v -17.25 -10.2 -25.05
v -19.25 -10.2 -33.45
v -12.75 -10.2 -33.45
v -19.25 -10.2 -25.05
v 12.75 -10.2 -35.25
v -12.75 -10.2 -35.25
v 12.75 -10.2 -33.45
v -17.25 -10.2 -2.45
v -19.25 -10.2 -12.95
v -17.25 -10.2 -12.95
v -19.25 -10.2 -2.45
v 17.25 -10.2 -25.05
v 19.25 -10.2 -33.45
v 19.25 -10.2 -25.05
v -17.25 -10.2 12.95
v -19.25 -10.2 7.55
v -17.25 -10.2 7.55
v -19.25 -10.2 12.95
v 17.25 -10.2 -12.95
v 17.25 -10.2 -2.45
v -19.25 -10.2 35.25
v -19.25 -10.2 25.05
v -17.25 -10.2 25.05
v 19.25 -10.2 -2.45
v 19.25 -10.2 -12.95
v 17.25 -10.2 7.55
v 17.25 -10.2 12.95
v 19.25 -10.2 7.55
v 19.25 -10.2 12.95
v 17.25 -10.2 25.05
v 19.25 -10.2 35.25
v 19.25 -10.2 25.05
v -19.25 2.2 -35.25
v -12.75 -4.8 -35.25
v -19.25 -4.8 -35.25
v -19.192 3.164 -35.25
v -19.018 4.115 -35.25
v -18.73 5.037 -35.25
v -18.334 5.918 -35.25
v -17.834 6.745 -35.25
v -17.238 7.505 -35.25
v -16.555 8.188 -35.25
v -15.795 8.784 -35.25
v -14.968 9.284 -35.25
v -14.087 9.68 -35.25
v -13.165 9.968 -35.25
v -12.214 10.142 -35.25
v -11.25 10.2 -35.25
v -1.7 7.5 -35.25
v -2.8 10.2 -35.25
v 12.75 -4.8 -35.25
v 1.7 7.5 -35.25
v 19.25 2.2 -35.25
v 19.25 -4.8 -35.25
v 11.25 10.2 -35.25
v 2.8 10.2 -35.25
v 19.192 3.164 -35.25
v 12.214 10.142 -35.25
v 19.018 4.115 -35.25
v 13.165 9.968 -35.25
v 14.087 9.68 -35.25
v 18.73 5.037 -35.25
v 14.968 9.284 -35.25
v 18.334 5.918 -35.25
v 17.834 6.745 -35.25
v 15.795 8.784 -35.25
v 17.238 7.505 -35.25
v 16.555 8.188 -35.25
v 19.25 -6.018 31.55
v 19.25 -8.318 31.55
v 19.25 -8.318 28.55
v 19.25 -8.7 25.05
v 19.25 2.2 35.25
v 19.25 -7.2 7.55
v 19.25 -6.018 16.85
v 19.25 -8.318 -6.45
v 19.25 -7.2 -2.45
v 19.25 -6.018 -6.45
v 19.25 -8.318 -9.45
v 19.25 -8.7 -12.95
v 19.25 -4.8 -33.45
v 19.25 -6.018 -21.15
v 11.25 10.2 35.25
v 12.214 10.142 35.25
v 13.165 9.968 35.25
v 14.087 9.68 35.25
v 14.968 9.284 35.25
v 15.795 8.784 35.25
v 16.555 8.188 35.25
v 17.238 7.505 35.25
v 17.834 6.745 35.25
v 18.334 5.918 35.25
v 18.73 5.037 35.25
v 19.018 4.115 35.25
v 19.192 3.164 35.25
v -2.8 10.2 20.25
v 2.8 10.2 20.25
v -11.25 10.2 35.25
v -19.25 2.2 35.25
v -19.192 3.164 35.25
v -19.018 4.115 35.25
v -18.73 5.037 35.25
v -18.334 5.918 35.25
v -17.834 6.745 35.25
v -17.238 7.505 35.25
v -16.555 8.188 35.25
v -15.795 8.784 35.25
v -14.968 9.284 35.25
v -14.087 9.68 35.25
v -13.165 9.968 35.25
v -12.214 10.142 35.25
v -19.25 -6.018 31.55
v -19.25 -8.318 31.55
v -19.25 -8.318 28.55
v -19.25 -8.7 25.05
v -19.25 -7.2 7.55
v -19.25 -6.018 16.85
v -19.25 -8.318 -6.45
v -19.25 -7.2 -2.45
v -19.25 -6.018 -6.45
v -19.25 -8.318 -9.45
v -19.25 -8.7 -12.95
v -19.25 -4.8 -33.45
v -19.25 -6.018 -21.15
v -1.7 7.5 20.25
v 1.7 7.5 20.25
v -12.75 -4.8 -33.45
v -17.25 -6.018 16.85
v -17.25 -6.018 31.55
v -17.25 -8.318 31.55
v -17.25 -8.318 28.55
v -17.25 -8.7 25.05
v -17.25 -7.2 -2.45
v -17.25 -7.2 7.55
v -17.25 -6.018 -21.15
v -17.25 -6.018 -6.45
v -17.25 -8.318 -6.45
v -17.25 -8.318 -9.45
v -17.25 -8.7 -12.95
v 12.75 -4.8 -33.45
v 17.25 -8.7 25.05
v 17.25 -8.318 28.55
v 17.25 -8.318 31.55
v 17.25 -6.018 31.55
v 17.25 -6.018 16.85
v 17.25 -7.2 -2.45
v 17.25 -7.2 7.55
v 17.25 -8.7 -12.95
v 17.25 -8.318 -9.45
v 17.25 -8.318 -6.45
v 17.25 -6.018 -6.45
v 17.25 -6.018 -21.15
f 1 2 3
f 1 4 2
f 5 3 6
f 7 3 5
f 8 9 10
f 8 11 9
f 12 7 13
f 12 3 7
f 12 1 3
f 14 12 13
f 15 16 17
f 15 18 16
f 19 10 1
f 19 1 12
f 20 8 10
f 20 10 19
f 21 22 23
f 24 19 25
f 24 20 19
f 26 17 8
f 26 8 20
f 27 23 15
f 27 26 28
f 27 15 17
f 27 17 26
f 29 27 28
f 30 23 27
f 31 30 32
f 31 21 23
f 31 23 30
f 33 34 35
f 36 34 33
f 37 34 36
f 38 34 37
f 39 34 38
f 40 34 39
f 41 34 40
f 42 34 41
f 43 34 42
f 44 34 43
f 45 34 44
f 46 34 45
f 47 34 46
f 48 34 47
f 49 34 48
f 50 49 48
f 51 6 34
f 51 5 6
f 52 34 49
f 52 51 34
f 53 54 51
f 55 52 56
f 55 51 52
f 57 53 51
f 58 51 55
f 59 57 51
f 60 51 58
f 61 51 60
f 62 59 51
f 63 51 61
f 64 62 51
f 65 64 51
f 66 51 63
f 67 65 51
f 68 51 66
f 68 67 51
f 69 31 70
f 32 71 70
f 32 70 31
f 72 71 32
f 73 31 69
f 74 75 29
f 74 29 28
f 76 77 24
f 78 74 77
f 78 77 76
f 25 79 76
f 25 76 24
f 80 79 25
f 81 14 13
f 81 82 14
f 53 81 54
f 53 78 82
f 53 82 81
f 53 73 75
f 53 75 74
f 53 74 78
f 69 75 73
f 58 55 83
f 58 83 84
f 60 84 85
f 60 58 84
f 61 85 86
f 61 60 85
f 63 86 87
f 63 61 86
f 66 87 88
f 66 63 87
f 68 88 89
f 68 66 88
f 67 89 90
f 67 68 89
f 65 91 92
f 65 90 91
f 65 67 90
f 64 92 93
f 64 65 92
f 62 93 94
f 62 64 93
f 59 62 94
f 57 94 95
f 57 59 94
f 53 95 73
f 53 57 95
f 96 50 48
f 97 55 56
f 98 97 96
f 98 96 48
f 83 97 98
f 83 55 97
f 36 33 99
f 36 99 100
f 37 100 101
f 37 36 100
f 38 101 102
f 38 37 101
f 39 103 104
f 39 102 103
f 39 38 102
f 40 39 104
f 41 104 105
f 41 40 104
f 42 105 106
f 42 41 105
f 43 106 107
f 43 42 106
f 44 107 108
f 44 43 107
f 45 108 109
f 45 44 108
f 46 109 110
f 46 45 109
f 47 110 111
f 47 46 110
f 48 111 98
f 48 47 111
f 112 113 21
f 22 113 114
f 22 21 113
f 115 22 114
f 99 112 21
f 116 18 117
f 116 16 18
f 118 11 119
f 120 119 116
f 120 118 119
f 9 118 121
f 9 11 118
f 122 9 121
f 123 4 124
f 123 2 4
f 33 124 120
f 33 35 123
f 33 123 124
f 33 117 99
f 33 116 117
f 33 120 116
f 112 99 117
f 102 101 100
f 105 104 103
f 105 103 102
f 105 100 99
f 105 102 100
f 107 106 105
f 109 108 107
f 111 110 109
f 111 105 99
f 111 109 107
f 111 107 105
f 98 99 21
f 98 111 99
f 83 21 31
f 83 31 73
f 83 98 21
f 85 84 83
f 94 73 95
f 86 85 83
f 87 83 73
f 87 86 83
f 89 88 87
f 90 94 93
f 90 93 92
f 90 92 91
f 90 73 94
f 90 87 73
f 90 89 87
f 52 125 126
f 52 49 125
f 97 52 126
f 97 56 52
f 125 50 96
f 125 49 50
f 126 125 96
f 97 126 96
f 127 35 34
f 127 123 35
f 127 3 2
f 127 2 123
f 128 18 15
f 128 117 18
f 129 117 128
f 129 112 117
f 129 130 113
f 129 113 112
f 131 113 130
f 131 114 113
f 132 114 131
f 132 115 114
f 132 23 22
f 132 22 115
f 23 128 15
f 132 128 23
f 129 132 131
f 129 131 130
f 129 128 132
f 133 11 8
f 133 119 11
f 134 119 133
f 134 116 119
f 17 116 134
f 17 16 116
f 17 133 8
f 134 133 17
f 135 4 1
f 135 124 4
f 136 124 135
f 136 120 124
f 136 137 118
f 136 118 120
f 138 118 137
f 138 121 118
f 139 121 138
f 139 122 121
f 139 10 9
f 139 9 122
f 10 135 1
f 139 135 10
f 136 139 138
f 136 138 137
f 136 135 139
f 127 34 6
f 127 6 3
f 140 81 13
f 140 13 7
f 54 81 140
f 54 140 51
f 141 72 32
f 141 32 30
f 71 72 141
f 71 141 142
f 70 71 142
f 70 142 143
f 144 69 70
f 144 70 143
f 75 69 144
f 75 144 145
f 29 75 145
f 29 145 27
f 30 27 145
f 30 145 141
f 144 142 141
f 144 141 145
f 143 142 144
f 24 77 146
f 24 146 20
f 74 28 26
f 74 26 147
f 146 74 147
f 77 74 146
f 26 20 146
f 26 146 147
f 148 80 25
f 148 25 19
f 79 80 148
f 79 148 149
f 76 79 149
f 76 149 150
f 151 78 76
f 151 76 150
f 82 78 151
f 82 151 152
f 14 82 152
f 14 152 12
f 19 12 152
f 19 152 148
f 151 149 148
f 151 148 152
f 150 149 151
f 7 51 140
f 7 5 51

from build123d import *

# Parameters (mm, degrees)
SKETCH_1_R          = 8
SKETCH_1_W          = 38.5
SKETCH_1_H          = 12.4
SKETCH_1_W_2        = 22.5
SKETCH_1_H_2        = 8
EXTRUDE_1_DEPTH     = 35.25
CUT_EXTRUDE_1_DEPTH = 55.5
SKETCH_3_W          = 1.8
SKETCH_3_H          = 5.4
SKETCH_3_W_2        = 10
SKETCH_3_H_2        = 3
CUT_EXTRUDE_2_DEPTH = 2
SKETCH_4_W          = 1.8
SKETCH_4_H          = 5.4
CUT_EXTRUDE_3_DEPTH = 4.5


with BuildPart() as part:
    # 草图1 → 凸台-拉伸1 (new, symmetric)
    with BuildSketch(Plane.XY):
        with Locations((-11.25, 2.2)):
            Circle(SKETCH_1_R)
        with Locations((11.25, 2.2)):
            Circle(SKETCH_1_R)
        with Locations((0, -4)):
            Rectangle(SKETCH_1_W, SKETCH_1_H)
        with Locations((0, 6.2)):
            Rectangle(SKETCH_1_W_2, SKETCH_1_H_2)
    extrude(amount=EXTRUDE_1_DEPTH, both=True)

    # 草图2 → 切除-拉伸1 (cut)
    with BuildSketch(Plane(origin=(0, 0, -35.25), x_dir=(-1, 0, 0), z_dir=(0, 0, -1))):
        Polygon((-2.8, 10.2), (2.8, 10.2), (1.7, 7.5), (-1.7, 7.5), align=None)
    cut_extrude_1 = extrude(amount=-CUT_EXTRUDE_1_DEPTH, mode=Mode.SUBTRACT)

    # 草图3 → 切除-拉伸2 (cut)
    with BuildSketch(Plane.ZY.offset(19.25)):
        with Locations((-34.35, -7.5)):
            Rectangle(SKETCH_3_W, SKETCH_3_H)
        Polygon((-25.05, -10.2), (-21.15, -6.017762031), (-6.45, -6.017762031), (-6.45, -8.317762031), (-9.45, -8.317762031), (-12.95, -8.7), (-12.95, -10.2), align=None)
        with Locations((2.55, -8.7)):
            Rectangle(SKETCH_3_W_2, SKETCH_3_H_2)
        Polygon((12.95, -10.2), (16.85, -6.017762031), (31.55, -6.017762031), (31.55, -8.317762031), (28.55, -8.317762031), (25.05, -8.7), (25.05, -10.2), align=None)
    cut_extrude_2 = extrude(amount=-CUT_EXTRUDE_2_DEPTH, mode=Mode.SUBTRACT)

    # 草图4 → 切除-拉伸3 (cut)
    with BuildSketch(Plane.ZY.offset(17.25)):
        with Locations((-34.35, -7.5)):
            Rectangle(SKETCH_4_W, SKETCH_4_H)
    cut_extrude_3 = extrude(amount=-CUT_EXTRUDE_3_DEPTH, mode=Mode.SUBTRACT)

    # 镜向1: 切除-拉伸1, 切除-拉伸2, 切除-拉伸3 across plane
    add(cut_extrude_1.mirror(Plane(origin=(0, 0, 0), x_dir=(0, 0, 1), z_dir=(1, 0, 0))), mode=Mode.SUBTRACT)
    add(cut_extrude_2.mirror(Plane(origin=(0, 0, 0), x_dir=(0, 0, 1), z_dir=(1, 0, 0))), mode=Mode.SUBTRACT)
    add(cut_extrude_3.mirror(Plane(origin=(0, 0, 0), x_dir=(0, 0, 1), z_dir=(1, 0, 0))), mode=Mode.SUBTRACT)


solid = part.part
